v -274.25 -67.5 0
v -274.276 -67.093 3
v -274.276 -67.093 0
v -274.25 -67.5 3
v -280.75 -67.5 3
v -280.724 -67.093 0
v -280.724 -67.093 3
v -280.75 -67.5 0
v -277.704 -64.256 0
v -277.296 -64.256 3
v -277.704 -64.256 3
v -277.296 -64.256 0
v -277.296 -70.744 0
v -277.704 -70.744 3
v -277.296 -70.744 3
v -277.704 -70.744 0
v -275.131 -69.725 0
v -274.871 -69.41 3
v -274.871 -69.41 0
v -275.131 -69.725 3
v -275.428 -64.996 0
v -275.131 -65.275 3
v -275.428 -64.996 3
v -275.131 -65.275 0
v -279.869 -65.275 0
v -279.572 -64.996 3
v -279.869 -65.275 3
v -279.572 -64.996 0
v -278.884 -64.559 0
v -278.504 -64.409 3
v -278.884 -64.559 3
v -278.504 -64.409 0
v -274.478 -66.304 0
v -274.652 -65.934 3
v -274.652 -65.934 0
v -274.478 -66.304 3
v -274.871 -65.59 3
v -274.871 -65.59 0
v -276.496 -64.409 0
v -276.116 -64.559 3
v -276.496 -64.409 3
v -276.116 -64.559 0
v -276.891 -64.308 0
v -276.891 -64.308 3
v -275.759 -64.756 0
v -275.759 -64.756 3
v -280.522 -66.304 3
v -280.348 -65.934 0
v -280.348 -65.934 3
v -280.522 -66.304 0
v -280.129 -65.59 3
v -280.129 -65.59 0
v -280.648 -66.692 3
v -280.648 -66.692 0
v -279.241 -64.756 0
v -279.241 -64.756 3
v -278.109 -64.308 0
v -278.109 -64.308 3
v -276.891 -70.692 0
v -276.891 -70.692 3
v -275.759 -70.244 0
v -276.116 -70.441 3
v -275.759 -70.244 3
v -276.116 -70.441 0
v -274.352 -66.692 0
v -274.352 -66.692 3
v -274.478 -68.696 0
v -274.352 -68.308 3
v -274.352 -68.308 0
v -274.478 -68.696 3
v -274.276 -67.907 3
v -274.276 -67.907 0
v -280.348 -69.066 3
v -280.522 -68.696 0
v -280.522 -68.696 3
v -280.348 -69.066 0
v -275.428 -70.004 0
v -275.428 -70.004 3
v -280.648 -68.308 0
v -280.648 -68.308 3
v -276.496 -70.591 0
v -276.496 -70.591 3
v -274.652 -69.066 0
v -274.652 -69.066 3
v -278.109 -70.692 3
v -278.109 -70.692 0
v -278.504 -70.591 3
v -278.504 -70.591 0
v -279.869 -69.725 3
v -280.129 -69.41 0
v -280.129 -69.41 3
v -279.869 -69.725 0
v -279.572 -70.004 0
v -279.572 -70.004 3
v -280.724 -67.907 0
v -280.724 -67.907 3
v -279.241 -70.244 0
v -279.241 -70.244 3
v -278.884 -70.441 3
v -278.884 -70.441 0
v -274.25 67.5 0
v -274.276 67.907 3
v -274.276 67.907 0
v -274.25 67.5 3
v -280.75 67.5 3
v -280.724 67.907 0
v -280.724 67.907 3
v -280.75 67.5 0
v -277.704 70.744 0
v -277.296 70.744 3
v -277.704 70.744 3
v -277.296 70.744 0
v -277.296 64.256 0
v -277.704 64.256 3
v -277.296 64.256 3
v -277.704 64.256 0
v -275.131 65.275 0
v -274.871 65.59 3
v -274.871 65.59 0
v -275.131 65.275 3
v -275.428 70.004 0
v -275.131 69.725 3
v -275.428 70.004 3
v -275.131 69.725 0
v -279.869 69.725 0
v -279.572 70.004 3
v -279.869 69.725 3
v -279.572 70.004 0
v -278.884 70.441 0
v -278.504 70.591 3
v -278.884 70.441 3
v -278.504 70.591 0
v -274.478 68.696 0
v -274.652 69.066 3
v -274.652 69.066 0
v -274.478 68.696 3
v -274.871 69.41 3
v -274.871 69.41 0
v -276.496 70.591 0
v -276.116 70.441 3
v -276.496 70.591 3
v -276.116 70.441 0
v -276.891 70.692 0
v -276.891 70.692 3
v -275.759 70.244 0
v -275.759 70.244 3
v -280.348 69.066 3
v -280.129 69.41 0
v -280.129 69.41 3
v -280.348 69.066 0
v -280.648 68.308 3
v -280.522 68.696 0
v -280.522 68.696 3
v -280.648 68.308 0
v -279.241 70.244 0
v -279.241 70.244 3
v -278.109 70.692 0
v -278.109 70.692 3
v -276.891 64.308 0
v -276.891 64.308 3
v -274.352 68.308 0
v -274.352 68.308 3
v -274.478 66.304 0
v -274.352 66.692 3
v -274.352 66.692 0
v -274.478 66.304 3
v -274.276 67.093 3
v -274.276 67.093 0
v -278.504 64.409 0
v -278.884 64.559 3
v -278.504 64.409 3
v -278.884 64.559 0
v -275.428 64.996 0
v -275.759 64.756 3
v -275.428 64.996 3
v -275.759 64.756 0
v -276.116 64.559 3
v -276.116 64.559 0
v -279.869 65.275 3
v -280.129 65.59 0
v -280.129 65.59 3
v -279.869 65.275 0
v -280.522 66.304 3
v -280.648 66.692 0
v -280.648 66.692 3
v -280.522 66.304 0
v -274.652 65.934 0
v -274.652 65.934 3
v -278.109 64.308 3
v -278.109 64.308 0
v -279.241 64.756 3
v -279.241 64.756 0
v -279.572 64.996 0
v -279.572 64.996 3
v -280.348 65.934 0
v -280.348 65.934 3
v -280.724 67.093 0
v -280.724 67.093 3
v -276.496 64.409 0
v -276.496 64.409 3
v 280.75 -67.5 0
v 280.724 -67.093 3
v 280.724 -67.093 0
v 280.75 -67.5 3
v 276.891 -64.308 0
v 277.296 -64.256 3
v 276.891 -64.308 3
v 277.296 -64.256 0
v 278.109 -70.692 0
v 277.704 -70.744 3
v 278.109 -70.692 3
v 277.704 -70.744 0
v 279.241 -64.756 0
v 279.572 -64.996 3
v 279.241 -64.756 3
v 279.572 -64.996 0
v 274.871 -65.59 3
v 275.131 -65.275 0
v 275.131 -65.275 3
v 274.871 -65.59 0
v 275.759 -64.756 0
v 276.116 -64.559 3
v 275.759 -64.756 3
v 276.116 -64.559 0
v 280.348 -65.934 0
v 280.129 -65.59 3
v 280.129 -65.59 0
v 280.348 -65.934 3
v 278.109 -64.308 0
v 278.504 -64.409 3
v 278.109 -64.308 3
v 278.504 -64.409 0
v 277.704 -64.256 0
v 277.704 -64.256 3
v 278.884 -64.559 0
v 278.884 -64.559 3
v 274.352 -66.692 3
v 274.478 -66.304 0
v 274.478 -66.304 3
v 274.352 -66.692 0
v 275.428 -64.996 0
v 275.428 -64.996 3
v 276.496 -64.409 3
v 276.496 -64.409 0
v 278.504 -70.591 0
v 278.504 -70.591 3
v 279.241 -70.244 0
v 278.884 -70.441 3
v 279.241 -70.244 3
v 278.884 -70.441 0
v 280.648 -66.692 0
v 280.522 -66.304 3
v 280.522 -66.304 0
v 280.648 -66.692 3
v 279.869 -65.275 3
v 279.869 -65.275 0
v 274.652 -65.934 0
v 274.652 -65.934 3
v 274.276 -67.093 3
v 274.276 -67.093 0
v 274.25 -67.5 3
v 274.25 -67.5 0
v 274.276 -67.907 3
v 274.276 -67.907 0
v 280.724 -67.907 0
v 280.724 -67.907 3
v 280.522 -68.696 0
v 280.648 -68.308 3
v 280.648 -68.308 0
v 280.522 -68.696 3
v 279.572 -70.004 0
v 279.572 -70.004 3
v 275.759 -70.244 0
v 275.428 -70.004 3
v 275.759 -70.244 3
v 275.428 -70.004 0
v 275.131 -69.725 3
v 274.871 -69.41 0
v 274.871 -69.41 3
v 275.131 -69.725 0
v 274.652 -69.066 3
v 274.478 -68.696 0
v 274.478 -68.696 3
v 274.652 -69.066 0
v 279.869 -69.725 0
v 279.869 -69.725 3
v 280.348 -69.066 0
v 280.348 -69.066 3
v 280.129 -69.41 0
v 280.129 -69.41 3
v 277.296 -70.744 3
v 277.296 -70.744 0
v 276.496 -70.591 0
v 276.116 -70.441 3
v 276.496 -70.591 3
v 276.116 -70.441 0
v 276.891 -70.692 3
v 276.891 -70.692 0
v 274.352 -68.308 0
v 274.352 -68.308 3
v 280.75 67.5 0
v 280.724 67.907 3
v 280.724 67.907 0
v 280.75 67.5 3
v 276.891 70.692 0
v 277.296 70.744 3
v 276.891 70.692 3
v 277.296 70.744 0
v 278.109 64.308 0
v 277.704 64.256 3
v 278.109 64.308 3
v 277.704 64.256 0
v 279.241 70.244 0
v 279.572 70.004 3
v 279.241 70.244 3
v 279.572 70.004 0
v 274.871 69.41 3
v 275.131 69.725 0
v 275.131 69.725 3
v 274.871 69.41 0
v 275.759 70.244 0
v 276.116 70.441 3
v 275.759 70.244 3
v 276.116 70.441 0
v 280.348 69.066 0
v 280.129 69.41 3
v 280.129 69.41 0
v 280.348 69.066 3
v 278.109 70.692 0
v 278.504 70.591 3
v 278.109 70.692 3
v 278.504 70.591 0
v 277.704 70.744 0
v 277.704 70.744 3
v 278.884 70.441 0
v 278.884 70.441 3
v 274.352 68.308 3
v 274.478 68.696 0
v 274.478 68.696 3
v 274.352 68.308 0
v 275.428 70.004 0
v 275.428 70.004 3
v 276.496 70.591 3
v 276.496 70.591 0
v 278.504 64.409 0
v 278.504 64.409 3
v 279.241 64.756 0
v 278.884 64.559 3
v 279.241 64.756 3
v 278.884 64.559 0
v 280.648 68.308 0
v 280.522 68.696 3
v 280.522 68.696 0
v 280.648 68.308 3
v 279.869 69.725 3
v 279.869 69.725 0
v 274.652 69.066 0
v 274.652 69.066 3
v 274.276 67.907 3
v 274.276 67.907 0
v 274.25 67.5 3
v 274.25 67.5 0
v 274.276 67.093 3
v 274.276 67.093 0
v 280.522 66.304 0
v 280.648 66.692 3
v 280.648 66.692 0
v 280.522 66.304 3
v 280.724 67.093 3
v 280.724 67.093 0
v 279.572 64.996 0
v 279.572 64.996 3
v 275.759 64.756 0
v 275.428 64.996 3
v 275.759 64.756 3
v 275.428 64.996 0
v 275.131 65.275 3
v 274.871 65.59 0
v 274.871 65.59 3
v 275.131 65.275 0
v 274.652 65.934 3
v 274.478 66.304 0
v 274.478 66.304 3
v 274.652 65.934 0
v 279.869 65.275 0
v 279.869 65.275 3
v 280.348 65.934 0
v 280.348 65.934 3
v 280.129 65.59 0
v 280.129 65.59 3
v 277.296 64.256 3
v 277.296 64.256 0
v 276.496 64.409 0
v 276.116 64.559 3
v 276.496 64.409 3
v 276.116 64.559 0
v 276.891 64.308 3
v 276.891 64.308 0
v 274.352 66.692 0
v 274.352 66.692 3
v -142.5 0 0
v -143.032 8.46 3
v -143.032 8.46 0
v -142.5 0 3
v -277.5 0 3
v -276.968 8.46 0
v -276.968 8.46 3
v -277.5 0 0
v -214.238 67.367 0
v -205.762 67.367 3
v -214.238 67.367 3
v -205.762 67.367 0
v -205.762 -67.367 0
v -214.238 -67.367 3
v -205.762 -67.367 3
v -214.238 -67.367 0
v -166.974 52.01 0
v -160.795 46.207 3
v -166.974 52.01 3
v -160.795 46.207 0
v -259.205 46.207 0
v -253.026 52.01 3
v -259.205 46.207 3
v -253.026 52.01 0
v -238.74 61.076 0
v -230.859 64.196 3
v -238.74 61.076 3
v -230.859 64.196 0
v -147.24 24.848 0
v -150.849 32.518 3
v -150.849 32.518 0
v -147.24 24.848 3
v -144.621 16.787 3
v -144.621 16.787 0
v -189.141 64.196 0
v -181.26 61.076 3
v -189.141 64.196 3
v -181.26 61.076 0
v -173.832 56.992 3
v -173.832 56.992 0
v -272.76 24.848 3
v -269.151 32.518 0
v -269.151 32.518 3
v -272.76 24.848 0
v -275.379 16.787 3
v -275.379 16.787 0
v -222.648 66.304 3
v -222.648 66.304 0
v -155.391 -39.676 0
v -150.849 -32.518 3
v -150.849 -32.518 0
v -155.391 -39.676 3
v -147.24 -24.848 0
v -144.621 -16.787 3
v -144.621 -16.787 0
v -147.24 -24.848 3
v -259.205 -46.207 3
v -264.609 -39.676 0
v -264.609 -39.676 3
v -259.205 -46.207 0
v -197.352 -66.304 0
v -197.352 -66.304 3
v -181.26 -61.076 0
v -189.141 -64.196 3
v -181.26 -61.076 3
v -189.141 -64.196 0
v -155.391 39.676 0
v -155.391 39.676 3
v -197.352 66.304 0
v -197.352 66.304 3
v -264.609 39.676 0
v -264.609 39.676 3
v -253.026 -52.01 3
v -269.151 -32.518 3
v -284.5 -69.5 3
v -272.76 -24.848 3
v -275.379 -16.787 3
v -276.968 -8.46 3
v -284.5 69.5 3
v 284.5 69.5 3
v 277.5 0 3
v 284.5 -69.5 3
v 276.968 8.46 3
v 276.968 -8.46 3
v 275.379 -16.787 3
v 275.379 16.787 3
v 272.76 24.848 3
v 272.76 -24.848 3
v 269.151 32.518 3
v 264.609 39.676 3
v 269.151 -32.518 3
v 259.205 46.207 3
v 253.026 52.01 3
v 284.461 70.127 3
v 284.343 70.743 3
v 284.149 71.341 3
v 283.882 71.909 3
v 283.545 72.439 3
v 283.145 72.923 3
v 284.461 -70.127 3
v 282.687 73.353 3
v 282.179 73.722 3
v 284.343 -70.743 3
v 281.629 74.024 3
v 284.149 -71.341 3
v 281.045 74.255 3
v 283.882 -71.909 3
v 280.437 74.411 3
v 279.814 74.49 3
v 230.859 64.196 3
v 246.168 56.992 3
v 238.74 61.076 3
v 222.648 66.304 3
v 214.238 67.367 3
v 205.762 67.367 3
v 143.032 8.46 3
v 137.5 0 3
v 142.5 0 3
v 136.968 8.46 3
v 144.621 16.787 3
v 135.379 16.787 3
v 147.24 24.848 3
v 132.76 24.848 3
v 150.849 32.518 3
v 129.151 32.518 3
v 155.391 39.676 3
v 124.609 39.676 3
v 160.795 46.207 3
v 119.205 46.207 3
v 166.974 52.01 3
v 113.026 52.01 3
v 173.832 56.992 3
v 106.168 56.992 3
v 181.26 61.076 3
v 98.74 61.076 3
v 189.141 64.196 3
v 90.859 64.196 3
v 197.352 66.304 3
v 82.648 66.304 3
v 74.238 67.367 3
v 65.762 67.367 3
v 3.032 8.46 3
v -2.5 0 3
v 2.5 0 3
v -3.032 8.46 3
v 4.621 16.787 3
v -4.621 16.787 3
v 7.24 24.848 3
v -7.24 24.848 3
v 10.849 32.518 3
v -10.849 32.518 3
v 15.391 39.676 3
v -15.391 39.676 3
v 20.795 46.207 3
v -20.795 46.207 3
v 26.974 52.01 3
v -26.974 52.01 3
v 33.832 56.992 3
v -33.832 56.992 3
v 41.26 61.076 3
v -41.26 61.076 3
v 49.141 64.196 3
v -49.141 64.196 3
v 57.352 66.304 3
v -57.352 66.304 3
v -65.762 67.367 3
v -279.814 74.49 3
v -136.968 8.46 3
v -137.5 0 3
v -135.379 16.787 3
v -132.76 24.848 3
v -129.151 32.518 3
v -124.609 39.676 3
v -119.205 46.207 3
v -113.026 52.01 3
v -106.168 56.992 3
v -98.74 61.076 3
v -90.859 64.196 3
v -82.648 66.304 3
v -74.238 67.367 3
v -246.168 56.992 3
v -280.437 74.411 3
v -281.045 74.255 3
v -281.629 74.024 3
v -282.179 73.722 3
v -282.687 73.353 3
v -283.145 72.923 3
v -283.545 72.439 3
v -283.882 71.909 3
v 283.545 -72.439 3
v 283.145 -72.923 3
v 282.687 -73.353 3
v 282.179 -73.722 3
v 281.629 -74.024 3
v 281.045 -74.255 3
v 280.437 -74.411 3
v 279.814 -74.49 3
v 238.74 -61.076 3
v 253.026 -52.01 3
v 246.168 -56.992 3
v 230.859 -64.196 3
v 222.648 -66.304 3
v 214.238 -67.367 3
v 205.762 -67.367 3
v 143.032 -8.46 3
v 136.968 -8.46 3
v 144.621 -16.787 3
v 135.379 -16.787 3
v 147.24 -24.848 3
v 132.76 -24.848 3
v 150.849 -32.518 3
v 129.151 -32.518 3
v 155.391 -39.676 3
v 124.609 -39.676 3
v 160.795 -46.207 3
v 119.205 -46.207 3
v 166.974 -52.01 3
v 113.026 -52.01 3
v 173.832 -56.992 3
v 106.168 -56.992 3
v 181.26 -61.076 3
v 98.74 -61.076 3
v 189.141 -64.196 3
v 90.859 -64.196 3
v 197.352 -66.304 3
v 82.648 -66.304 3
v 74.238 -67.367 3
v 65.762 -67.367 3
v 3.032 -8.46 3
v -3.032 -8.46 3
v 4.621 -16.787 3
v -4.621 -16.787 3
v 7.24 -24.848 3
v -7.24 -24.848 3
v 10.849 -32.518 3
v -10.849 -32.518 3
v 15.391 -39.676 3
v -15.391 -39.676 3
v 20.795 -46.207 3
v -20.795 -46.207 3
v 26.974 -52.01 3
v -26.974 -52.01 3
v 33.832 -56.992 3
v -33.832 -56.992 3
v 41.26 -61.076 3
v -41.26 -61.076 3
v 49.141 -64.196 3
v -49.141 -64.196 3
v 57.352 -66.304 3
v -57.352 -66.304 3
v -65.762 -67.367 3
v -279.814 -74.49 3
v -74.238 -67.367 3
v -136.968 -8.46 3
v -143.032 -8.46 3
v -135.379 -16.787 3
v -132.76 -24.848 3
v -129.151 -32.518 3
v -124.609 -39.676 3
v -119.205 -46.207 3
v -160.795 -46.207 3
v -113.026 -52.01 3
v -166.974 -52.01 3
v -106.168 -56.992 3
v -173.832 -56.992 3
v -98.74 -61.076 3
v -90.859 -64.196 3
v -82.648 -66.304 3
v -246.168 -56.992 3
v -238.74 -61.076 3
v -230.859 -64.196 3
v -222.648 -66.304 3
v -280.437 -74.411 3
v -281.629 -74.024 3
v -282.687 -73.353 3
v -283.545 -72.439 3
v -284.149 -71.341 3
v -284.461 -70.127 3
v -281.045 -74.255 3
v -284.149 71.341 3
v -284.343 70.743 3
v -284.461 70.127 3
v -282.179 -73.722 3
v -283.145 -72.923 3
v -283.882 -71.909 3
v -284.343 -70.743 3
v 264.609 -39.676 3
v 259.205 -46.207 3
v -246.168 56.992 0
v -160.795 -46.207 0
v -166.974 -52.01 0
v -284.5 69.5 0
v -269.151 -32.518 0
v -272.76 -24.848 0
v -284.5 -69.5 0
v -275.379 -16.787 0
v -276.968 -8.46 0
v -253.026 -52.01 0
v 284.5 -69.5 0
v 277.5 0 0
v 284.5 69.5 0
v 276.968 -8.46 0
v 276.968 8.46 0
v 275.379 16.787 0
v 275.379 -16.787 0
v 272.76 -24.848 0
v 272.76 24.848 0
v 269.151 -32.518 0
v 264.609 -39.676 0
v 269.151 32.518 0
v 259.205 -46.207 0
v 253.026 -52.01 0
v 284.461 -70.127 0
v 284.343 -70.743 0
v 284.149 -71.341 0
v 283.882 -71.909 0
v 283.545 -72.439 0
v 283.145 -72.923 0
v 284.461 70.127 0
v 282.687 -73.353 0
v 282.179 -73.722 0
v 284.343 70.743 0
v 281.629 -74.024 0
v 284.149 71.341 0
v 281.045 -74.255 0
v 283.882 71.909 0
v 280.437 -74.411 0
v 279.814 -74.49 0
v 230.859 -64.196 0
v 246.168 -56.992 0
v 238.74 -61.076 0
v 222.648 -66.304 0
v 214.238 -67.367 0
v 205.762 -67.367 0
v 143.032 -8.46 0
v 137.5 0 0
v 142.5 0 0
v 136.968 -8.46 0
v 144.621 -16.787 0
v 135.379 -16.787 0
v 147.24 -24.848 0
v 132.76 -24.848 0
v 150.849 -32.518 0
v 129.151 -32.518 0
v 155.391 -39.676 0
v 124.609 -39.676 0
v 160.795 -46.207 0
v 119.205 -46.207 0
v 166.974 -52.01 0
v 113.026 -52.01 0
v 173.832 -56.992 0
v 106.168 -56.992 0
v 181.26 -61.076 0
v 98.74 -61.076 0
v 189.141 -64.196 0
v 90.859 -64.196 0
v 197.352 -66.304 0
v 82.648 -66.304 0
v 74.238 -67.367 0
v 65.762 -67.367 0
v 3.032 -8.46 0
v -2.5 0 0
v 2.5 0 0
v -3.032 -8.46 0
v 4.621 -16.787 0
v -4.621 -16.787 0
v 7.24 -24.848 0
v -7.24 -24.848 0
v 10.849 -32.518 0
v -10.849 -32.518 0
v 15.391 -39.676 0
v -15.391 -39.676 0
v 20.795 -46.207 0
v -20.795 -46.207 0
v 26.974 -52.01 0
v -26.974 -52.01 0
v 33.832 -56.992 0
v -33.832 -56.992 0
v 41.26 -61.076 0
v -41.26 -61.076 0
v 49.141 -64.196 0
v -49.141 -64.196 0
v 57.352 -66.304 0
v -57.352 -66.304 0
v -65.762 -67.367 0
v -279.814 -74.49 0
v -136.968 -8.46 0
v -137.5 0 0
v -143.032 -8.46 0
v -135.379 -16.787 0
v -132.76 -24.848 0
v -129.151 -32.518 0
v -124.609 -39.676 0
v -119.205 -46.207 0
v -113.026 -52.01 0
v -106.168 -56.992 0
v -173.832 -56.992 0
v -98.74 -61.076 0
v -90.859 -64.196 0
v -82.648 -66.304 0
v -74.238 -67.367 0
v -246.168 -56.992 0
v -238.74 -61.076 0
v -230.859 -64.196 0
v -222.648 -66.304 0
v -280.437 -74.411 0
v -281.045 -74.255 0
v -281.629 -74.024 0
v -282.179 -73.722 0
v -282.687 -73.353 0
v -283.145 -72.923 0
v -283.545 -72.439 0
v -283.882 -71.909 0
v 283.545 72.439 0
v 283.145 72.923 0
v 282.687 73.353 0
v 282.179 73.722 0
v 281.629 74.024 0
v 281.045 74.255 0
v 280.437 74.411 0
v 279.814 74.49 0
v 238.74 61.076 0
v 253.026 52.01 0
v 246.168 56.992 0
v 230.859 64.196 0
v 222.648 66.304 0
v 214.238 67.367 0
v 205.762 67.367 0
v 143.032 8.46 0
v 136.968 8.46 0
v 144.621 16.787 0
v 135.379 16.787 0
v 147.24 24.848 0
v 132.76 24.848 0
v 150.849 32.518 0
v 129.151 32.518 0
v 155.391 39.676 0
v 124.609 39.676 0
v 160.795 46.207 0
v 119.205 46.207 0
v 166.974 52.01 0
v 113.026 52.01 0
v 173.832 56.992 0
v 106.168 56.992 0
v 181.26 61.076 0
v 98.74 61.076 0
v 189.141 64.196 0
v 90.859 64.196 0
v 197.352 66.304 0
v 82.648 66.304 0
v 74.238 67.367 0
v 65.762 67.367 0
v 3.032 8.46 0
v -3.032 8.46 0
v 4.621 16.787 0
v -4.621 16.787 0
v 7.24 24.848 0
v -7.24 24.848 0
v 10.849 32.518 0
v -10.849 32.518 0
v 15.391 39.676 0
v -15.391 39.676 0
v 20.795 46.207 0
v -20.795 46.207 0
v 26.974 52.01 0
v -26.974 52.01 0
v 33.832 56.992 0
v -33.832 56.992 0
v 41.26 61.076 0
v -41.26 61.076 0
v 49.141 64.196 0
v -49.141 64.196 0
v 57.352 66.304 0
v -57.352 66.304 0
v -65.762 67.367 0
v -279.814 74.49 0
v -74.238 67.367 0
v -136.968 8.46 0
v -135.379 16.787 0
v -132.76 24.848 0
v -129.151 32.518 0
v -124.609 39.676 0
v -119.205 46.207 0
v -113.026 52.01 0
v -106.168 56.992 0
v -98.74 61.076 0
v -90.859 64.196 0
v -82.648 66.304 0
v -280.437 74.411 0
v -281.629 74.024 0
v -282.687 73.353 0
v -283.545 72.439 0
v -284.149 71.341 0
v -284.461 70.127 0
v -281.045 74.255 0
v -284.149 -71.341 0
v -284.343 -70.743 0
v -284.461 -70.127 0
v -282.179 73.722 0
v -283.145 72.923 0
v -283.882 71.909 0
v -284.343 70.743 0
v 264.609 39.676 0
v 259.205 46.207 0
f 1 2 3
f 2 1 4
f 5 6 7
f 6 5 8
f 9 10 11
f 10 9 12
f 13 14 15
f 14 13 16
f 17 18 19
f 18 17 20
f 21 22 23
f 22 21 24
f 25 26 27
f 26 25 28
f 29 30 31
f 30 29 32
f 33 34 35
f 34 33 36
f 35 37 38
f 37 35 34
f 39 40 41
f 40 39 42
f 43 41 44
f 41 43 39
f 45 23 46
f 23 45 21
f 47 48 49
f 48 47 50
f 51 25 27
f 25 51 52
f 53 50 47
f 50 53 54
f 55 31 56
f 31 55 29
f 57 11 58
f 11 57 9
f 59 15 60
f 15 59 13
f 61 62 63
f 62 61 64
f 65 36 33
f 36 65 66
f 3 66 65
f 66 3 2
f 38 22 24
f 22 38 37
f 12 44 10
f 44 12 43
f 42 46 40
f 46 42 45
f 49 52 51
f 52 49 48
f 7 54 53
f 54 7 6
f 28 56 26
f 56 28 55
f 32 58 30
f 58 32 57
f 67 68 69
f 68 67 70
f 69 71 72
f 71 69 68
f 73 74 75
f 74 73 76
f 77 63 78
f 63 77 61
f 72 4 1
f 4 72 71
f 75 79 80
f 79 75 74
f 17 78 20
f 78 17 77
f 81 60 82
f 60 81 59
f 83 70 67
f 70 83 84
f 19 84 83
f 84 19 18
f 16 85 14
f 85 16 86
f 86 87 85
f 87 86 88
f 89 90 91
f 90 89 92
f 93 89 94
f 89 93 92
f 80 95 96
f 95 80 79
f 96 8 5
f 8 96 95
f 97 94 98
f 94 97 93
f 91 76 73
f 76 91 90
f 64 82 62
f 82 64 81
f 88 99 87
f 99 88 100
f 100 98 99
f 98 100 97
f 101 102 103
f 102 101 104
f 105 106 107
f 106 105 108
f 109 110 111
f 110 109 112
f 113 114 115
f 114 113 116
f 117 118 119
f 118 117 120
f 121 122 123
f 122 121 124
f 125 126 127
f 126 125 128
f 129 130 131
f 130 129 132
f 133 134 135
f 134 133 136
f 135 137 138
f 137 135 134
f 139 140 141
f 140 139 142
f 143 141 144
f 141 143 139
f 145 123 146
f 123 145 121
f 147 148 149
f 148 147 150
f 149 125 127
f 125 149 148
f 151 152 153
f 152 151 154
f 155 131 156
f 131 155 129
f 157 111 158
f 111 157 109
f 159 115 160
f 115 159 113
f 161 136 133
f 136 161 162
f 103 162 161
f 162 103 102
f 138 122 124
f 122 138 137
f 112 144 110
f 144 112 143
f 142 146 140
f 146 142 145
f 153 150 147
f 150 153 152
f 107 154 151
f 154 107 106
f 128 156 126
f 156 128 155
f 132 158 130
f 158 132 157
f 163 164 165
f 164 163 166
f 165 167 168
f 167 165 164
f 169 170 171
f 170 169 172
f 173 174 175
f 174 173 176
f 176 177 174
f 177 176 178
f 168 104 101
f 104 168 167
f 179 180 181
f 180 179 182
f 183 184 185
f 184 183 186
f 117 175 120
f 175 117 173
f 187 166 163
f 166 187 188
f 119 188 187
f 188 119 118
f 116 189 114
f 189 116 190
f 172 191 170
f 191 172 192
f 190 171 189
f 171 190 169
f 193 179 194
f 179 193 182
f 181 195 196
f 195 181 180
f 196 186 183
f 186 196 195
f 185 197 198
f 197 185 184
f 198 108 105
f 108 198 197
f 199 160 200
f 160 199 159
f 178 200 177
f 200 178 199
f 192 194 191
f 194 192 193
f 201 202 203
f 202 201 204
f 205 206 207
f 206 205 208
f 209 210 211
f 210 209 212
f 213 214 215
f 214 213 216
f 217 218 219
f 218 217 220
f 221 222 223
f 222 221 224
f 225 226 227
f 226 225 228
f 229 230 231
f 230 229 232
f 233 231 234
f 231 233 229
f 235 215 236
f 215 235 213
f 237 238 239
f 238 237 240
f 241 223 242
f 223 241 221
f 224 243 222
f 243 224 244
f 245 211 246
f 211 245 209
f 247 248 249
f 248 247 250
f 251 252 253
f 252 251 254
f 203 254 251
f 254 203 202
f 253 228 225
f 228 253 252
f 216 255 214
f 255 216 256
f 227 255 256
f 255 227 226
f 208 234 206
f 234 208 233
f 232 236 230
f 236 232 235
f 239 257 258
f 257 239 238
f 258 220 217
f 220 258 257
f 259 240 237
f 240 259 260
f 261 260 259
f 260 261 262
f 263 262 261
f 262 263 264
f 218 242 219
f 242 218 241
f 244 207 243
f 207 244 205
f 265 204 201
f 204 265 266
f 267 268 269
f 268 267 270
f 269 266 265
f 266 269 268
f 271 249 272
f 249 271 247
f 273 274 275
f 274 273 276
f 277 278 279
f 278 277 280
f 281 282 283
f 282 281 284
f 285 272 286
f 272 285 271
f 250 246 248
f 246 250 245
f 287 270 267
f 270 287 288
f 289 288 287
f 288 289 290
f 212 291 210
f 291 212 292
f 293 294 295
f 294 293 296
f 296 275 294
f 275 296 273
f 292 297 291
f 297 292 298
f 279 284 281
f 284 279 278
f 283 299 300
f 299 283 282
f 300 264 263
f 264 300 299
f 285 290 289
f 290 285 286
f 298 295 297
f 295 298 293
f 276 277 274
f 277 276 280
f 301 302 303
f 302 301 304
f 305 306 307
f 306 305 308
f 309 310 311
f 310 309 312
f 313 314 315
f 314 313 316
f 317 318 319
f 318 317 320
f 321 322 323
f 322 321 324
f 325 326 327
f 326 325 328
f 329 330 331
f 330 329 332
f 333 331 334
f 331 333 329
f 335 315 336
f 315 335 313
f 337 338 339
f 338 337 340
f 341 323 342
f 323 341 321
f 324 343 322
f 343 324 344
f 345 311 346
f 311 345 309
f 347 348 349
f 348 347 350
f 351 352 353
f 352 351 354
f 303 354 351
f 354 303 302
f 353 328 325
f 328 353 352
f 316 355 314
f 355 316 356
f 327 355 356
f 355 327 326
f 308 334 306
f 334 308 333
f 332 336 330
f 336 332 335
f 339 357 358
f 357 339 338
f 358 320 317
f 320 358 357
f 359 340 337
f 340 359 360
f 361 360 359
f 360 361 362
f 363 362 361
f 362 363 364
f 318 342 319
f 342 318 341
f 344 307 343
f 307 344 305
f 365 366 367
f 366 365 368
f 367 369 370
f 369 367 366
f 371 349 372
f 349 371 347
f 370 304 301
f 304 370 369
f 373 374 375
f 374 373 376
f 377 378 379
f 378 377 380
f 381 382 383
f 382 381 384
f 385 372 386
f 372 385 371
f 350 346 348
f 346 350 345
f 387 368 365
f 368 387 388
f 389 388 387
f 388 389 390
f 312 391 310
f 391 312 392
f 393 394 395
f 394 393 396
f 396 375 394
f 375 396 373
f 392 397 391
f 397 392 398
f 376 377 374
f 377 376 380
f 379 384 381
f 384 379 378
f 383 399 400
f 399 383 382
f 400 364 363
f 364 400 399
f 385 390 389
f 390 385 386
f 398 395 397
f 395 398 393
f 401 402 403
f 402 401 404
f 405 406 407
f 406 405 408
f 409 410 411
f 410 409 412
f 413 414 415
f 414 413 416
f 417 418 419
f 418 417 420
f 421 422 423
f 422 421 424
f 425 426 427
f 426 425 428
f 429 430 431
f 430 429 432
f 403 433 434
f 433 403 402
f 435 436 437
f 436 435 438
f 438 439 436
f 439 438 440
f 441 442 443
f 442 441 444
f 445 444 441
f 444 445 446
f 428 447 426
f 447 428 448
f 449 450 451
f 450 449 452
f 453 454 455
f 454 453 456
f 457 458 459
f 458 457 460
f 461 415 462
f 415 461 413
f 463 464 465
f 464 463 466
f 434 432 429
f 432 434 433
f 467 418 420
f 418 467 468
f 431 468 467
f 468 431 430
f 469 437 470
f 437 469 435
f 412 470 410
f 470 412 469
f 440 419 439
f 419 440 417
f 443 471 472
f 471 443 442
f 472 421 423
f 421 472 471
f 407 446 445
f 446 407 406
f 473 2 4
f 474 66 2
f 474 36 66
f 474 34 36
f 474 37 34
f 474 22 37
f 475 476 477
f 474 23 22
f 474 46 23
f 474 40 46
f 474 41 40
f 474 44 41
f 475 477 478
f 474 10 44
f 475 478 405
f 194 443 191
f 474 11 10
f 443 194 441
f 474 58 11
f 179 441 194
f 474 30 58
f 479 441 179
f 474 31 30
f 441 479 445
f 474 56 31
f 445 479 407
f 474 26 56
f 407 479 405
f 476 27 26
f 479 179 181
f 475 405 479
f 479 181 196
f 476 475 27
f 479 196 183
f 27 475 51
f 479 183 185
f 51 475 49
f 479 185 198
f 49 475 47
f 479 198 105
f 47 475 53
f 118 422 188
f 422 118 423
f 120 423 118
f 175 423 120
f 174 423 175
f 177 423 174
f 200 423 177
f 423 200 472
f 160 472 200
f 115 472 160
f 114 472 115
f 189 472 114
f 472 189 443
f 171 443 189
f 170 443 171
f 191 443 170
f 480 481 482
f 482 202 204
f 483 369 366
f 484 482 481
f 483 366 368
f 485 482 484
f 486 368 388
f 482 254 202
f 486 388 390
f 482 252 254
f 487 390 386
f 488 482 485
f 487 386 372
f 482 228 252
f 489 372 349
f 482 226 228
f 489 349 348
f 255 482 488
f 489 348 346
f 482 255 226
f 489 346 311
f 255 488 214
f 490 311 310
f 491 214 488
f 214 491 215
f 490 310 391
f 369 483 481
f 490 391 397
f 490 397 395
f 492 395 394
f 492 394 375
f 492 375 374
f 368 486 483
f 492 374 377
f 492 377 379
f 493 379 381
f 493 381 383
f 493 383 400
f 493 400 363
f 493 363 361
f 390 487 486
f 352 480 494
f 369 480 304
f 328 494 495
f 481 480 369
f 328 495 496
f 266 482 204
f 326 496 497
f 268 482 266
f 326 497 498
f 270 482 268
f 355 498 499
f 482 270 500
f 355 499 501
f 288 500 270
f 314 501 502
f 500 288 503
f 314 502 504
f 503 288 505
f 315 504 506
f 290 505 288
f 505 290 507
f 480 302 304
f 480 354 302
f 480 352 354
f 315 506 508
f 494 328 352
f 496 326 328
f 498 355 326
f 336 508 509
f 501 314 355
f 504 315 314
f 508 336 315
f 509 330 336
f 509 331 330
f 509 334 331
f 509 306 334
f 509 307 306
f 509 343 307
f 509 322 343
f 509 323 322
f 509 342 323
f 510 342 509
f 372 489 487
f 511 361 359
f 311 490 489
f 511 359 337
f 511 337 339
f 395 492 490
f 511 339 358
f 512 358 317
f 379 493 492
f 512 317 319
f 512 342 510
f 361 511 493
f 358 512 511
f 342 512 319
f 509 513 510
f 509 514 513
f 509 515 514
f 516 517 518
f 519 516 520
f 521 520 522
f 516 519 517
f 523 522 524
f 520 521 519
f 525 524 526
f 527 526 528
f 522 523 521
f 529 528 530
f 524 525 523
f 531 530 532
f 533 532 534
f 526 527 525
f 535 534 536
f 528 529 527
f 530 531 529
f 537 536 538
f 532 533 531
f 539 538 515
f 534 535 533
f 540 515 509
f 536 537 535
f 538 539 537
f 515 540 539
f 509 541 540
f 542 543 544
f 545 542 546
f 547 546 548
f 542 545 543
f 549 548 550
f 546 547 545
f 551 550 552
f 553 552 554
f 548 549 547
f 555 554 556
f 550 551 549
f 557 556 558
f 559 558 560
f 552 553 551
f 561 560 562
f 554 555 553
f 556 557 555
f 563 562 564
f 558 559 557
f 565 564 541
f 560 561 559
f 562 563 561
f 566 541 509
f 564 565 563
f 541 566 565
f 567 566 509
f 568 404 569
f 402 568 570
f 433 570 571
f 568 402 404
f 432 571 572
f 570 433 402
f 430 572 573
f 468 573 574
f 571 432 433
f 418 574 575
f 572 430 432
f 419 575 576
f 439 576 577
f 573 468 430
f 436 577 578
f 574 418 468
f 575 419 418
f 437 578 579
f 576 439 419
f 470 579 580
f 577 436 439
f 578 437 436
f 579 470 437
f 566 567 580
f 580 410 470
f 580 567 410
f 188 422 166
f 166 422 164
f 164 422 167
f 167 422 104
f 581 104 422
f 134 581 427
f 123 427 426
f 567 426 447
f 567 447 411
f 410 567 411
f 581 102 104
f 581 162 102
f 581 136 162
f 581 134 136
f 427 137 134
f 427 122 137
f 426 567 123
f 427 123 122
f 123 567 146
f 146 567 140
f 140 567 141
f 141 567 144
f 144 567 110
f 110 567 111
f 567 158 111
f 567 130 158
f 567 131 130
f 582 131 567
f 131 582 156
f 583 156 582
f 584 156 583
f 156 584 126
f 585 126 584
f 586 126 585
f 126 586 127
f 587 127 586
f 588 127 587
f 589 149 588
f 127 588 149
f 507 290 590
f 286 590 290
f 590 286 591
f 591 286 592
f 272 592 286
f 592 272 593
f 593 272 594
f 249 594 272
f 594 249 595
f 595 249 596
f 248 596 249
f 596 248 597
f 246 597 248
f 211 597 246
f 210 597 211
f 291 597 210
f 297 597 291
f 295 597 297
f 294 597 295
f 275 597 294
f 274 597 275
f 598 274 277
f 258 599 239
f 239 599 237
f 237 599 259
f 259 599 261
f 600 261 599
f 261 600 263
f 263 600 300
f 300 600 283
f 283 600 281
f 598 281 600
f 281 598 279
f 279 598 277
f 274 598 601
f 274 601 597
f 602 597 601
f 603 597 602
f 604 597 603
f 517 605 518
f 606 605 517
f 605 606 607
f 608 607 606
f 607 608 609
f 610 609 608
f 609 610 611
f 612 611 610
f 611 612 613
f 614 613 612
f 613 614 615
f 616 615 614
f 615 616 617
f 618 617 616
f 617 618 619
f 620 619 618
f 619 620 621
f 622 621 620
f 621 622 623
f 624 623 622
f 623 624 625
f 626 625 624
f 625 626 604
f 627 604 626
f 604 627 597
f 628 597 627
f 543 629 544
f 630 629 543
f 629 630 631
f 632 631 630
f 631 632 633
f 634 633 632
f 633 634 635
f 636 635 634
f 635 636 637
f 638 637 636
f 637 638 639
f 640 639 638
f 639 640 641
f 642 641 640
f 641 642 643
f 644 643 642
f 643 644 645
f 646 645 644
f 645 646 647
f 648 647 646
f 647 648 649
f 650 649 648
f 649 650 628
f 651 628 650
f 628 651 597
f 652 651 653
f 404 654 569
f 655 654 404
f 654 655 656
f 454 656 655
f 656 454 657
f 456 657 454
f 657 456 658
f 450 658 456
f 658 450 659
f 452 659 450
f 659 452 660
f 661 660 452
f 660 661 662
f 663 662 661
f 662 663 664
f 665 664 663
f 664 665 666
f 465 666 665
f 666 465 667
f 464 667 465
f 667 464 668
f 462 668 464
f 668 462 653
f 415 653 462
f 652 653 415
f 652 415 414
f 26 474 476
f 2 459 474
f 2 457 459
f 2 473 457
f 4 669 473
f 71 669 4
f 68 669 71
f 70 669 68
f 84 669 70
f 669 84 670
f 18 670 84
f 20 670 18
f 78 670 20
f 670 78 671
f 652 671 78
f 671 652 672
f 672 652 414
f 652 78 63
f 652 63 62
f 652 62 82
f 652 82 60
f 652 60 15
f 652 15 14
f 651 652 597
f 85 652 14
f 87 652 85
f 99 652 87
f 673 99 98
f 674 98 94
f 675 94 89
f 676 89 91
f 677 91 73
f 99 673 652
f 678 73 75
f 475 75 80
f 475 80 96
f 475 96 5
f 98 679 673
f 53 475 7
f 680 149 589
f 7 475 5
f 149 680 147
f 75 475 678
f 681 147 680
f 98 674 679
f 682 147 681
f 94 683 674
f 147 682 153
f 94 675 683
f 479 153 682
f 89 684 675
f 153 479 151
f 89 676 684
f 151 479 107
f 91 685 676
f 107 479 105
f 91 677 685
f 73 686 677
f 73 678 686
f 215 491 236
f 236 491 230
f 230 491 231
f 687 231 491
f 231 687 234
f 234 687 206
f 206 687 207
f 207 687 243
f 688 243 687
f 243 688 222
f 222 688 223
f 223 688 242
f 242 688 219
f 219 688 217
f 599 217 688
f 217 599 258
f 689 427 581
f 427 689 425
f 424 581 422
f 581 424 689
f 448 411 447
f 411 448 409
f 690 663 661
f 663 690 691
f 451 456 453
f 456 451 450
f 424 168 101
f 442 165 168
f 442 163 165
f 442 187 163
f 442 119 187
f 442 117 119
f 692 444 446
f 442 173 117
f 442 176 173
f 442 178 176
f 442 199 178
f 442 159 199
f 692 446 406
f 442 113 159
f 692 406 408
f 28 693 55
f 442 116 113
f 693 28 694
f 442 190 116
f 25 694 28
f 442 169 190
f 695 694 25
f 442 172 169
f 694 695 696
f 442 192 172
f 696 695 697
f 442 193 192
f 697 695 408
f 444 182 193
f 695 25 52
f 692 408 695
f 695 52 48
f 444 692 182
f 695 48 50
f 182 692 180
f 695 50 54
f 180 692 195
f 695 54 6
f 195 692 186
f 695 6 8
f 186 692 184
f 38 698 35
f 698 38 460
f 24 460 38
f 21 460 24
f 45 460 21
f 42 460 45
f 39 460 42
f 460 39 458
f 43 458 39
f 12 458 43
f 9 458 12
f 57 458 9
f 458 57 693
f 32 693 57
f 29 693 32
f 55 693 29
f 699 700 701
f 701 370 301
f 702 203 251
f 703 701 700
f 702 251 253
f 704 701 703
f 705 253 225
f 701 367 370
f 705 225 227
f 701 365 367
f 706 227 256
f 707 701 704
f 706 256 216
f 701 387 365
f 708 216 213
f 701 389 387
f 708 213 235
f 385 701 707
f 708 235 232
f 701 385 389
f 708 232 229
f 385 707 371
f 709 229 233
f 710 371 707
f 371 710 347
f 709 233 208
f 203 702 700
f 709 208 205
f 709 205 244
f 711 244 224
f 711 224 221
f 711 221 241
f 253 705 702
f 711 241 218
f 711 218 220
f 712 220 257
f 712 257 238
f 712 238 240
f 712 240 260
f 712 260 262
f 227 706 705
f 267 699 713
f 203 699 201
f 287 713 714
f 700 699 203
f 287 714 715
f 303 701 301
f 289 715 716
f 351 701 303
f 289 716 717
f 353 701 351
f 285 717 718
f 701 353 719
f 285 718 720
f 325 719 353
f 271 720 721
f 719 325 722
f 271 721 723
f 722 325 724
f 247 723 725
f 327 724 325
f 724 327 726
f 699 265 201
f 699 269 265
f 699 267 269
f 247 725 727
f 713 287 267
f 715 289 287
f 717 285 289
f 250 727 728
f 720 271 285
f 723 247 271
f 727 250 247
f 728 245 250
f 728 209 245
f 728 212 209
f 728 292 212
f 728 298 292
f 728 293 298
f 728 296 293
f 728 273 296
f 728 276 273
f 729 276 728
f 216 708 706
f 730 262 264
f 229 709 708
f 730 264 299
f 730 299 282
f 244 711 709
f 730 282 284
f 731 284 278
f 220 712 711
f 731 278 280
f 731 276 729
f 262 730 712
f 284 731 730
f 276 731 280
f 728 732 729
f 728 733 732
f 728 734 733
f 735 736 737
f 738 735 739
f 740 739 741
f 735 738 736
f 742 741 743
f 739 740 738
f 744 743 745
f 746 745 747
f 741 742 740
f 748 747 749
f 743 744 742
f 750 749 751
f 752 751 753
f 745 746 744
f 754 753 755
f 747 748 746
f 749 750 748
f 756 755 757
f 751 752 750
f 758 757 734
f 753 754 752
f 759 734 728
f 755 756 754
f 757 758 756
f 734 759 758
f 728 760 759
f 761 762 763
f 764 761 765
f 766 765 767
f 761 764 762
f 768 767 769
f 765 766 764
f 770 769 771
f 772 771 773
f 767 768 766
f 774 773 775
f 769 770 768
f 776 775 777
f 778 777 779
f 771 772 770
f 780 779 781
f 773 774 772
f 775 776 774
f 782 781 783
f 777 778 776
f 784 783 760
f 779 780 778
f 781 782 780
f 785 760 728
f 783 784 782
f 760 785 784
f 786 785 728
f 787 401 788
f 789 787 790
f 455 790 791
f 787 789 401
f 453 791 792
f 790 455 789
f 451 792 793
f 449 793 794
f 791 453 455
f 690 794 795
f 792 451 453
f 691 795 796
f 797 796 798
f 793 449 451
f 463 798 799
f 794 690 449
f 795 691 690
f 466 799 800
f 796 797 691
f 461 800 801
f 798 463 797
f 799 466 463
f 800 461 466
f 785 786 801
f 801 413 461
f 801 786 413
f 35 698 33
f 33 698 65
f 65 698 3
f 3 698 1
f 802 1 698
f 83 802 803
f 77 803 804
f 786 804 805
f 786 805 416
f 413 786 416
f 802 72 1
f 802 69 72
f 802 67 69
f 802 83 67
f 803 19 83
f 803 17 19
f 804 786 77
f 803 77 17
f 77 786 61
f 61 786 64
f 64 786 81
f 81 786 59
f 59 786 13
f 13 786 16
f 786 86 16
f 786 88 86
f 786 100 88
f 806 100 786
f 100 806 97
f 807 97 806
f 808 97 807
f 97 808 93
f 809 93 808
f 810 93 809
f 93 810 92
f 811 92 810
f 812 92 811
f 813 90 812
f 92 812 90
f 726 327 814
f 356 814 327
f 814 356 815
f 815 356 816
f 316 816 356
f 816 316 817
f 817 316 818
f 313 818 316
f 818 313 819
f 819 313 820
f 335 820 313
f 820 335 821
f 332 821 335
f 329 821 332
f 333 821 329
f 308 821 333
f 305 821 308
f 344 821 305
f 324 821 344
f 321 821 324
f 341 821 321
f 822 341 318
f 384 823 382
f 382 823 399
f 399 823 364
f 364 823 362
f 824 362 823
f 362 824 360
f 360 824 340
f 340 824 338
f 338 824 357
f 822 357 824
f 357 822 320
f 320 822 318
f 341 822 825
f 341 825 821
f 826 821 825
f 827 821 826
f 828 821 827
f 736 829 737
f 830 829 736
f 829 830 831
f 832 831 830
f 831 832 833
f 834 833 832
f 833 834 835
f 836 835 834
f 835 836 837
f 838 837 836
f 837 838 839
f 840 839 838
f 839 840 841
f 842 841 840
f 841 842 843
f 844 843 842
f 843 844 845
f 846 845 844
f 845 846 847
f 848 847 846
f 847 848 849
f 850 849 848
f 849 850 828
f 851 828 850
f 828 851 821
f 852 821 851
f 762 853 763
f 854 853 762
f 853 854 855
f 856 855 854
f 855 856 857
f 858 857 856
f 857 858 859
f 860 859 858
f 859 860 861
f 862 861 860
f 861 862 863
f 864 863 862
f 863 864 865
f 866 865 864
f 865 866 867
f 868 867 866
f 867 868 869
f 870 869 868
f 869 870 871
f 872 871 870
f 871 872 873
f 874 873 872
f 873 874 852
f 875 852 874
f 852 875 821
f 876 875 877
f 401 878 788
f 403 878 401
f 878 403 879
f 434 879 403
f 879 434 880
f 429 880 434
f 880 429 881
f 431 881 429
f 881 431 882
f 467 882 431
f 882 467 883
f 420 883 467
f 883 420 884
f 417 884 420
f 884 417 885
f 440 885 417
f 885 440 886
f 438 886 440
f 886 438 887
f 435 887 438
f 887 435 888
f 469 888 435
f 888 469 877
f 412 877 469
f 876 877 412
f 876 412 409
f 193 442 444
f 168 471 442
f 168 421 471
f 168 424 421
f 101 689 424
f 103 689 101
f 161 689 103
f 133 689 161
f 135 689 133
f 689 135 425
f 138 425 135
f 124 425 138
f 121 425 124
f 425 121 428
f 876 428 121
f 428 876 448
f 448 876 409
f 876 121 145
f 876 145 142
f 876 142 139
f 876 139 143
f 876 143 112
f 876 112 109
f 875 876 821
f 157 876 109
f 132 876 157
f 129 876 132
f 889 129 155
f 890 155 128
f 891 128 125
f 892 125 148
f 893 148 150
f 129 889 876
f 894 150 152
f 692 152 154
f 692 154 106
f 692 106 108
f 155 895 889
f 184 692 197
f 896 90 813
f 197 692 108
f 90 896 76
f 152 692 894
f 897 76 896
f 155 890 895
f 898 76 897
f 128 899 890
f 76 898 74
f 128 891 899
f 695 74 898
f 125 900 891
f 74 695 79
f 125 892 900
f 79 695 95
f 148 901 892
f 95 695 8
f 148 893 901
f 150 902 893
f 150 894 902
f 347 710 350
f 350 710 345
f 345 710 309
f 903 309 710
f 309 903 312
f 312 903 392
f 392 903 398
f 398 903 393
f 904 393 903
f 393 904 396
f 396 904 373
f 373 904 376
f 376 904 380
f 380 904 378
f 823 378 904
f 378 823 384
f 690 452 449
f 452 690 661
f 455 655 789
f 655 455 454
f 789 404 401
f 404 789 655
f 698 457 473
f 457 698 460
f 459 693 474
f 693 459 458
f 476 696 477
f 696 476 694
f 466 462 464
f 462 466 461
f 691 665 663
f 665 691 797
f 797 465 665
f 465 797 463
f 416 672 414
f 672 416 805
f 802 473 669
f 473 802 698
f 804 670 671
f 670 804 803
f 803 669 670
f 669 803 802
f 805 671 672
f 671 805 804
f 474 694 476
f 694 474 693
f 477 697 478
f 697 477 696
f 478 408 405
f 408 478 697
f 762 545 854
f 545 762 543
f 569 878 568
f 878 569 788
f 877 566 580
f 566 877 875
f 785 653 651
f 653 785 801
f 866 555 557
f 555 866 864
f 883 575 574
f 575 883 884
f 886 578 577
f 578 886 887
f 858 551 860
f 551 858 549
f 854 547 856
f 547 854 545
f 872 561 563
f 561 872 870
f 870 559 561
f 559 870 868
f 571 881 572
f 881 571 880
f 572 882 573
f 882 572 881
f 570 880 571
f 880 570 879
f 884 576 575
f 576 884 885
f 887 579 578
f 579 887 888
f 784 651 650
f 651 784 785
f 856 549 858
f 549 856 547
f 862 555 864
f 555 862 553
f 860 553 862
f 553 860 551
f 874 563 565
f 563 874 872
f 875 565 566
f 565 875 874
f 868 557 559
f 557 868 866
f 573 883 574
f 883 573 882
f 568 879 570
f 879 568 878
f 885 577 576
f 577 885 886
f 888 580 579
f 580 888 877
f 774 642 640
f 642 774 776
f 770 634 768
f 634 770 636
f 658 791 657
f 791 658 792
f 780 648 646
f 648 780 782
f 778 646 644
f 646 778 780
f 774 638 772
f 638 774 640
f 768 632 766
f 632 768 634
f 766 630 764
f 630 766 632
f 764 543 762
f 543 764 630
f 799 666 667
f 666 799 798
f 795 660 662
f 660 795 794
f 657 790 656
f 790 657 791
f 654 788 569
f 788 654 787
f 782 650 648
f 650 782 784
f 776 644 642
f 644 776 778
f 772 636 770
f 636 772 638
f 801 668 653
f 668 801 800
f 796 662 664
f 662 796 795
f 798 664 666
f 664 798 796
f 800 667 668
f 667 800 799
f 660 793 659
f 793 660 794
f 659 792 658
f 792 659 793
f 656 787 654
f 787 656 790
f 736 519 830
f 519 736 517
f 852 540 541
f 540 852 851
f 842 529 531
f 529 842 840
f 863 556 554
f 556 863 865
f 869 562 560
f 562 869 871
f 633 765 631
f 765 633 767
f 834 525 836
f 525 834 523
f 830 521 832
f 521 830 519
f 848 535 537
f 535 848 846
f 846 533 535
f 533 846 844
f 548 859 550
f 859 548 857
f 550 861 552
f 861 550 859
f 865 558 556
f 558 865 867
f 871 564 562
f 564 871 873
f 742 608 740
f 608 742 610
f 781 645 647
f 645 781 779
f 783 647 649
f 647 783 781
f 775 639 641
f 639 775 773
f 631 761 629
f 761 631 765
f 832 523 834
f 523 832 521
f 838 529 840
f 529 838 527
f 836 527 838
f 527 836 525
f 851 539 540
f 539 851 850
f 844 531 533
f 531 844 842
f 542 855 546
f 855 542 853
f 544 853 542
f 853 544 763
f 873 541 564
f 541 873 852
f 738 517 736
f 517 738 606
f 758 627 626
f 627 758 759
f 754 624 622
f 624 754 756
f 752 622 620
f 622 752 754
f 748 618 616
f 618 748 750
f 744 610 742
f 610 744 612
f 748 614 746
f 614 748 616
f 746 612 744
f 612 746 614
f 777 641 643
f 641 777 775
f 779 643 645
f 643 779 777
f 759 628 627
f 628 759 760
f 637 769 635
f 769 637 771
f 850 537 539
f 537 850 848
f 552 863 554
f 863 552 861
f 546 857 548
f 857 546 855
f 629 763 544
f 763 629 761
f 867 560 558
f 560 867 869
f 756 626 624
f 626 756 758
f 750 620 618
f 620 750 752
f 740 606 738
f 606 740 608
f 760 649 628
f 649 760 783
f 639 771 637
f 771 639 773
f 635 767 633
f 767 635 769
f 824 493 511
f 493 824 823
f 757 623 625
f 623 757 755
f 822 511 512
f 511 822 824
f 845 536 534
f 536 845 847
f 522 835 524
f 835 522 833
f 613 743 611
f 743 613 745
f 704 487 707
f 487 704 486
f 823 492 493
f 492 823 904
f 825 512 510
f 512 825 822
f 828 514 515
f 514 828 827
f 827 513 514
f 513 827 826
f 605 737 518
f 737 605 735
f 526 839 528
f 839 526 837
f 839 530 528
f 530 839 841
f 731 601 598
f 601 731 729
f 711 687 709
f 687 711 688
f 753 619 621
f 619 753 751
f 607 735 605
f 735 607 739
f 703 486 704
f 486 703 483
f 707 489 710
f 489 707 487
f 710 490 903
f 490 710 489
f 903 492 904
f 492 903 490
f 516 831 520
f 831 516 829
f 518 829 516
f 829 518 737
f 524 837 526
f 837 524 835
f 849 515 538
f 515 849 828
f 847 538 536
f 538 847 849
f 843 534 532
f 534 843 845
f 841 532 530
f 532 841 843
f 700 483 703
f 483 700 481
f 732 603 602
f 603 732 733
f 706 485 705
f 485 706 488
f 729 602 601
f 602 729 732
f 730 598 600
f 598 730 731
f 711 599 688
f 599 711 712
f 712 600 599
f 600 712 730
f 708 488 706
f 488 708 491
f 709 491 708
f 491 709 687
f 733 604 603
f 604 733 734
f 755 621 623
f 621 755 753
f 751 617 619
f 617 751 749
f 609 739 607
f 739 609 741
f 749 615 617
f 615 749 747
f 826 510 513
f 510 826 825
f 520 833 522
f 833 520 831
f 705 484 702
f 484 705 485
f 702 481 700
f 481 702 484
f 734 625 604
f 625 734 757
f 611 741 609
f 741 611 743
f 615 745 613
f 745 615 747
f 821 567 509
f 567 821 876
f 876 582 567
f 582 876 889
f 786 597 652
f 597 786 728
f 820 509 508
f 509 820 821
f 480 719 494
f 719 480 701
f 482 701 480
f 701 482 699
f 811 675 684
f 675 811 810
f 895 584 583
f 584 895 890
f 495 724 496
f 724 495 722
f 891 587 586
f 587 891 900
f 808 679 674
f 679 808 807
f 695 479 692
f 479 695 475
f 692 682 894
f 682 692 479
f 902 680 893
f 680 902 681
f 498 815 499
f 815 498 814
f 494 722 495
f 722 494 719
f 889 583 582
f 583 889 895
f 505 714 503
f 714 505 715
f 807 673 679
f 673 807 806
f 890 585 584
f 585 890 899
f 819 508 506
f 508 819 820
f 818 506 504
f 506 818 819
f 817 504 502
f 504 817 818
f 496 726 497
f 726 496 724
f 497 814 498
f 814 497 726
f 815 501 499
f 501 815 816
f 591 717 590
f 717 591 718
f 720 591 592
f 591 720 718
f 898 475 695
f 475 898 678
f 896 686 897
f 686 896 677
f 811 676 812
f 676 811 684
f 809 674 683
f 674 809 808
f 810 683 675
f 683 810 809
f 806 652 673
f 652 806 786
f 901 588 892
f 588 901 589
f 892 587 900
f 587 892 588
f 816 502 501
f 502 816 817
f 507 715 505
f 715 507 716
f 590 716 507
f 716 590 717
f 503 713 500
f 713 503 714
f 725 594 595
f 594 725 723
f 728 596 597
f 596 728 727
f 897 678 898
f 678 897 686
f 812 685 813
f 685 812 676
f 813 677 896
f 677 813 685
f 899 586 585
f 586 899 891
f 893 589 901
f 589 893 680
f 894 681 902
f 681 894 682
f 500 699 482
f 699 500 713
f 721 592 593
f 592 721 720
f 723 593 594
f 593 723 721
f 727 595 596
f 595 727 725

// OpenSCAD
$fn = 50;


difference() {
	union() {
		hull() {
			translate(v = [-279.5000000000, 69.5000000000, 0]) {
				cylinder(h = 3, r = 5);
			}
			translate(v = [279.5000000000, 69.5000000000, 0]) {
				cylinder(h = 3, r = 5);
			}
			translate(v = [-279.5000000000, -69.5000000000, 0]) {
				cylinder(h = 3, r = 5);
			}
			translate(v = [279.5000000000, -69.5000000000, 0]) {
				cylinder(h = 3, r = 5);
			}
		}
	}
	union() {
		#translate(v = [-277.5000000000, -67.5000000000, -100.0000000000]) {
			cylinder(h = 200, r = 3.2500000000);
		}
		#translate(v = [-277.5000000000, 67.5000000000, -100.0000000000]) {
			cylinder(h = 200, r = 3.2500000000);
		}
		#translate(v = [277.5000000000, -67.5000000000, -100.0000000000]) {
			cylinder(h = 200, r = 3.2500000000);
		}
		#translate(v = [277.5000000000, 67.5000000000, -100.0000000000]) {
			cylinder(h = 200, r = 3.2500000000);
		}
		#translate(v = [-210.0000000000, 0, 0]) {
			cylinder(h = 3, r = 67.5000000000);
		}
		#translate(v = [-70.0000000000, 0, 0]) {
			cylinder(h = 3, r = 67.5000000000);
		}
		#translate(v = [70.0000000000, 0, 0]) {
			cylinder(h = 3, r = 67.5000000000);
		}
		#translate(v = [210.0000000000, 0, 0]) {
			cylinder(h = 3, r = 67.5000000000);
		}
	}
}
